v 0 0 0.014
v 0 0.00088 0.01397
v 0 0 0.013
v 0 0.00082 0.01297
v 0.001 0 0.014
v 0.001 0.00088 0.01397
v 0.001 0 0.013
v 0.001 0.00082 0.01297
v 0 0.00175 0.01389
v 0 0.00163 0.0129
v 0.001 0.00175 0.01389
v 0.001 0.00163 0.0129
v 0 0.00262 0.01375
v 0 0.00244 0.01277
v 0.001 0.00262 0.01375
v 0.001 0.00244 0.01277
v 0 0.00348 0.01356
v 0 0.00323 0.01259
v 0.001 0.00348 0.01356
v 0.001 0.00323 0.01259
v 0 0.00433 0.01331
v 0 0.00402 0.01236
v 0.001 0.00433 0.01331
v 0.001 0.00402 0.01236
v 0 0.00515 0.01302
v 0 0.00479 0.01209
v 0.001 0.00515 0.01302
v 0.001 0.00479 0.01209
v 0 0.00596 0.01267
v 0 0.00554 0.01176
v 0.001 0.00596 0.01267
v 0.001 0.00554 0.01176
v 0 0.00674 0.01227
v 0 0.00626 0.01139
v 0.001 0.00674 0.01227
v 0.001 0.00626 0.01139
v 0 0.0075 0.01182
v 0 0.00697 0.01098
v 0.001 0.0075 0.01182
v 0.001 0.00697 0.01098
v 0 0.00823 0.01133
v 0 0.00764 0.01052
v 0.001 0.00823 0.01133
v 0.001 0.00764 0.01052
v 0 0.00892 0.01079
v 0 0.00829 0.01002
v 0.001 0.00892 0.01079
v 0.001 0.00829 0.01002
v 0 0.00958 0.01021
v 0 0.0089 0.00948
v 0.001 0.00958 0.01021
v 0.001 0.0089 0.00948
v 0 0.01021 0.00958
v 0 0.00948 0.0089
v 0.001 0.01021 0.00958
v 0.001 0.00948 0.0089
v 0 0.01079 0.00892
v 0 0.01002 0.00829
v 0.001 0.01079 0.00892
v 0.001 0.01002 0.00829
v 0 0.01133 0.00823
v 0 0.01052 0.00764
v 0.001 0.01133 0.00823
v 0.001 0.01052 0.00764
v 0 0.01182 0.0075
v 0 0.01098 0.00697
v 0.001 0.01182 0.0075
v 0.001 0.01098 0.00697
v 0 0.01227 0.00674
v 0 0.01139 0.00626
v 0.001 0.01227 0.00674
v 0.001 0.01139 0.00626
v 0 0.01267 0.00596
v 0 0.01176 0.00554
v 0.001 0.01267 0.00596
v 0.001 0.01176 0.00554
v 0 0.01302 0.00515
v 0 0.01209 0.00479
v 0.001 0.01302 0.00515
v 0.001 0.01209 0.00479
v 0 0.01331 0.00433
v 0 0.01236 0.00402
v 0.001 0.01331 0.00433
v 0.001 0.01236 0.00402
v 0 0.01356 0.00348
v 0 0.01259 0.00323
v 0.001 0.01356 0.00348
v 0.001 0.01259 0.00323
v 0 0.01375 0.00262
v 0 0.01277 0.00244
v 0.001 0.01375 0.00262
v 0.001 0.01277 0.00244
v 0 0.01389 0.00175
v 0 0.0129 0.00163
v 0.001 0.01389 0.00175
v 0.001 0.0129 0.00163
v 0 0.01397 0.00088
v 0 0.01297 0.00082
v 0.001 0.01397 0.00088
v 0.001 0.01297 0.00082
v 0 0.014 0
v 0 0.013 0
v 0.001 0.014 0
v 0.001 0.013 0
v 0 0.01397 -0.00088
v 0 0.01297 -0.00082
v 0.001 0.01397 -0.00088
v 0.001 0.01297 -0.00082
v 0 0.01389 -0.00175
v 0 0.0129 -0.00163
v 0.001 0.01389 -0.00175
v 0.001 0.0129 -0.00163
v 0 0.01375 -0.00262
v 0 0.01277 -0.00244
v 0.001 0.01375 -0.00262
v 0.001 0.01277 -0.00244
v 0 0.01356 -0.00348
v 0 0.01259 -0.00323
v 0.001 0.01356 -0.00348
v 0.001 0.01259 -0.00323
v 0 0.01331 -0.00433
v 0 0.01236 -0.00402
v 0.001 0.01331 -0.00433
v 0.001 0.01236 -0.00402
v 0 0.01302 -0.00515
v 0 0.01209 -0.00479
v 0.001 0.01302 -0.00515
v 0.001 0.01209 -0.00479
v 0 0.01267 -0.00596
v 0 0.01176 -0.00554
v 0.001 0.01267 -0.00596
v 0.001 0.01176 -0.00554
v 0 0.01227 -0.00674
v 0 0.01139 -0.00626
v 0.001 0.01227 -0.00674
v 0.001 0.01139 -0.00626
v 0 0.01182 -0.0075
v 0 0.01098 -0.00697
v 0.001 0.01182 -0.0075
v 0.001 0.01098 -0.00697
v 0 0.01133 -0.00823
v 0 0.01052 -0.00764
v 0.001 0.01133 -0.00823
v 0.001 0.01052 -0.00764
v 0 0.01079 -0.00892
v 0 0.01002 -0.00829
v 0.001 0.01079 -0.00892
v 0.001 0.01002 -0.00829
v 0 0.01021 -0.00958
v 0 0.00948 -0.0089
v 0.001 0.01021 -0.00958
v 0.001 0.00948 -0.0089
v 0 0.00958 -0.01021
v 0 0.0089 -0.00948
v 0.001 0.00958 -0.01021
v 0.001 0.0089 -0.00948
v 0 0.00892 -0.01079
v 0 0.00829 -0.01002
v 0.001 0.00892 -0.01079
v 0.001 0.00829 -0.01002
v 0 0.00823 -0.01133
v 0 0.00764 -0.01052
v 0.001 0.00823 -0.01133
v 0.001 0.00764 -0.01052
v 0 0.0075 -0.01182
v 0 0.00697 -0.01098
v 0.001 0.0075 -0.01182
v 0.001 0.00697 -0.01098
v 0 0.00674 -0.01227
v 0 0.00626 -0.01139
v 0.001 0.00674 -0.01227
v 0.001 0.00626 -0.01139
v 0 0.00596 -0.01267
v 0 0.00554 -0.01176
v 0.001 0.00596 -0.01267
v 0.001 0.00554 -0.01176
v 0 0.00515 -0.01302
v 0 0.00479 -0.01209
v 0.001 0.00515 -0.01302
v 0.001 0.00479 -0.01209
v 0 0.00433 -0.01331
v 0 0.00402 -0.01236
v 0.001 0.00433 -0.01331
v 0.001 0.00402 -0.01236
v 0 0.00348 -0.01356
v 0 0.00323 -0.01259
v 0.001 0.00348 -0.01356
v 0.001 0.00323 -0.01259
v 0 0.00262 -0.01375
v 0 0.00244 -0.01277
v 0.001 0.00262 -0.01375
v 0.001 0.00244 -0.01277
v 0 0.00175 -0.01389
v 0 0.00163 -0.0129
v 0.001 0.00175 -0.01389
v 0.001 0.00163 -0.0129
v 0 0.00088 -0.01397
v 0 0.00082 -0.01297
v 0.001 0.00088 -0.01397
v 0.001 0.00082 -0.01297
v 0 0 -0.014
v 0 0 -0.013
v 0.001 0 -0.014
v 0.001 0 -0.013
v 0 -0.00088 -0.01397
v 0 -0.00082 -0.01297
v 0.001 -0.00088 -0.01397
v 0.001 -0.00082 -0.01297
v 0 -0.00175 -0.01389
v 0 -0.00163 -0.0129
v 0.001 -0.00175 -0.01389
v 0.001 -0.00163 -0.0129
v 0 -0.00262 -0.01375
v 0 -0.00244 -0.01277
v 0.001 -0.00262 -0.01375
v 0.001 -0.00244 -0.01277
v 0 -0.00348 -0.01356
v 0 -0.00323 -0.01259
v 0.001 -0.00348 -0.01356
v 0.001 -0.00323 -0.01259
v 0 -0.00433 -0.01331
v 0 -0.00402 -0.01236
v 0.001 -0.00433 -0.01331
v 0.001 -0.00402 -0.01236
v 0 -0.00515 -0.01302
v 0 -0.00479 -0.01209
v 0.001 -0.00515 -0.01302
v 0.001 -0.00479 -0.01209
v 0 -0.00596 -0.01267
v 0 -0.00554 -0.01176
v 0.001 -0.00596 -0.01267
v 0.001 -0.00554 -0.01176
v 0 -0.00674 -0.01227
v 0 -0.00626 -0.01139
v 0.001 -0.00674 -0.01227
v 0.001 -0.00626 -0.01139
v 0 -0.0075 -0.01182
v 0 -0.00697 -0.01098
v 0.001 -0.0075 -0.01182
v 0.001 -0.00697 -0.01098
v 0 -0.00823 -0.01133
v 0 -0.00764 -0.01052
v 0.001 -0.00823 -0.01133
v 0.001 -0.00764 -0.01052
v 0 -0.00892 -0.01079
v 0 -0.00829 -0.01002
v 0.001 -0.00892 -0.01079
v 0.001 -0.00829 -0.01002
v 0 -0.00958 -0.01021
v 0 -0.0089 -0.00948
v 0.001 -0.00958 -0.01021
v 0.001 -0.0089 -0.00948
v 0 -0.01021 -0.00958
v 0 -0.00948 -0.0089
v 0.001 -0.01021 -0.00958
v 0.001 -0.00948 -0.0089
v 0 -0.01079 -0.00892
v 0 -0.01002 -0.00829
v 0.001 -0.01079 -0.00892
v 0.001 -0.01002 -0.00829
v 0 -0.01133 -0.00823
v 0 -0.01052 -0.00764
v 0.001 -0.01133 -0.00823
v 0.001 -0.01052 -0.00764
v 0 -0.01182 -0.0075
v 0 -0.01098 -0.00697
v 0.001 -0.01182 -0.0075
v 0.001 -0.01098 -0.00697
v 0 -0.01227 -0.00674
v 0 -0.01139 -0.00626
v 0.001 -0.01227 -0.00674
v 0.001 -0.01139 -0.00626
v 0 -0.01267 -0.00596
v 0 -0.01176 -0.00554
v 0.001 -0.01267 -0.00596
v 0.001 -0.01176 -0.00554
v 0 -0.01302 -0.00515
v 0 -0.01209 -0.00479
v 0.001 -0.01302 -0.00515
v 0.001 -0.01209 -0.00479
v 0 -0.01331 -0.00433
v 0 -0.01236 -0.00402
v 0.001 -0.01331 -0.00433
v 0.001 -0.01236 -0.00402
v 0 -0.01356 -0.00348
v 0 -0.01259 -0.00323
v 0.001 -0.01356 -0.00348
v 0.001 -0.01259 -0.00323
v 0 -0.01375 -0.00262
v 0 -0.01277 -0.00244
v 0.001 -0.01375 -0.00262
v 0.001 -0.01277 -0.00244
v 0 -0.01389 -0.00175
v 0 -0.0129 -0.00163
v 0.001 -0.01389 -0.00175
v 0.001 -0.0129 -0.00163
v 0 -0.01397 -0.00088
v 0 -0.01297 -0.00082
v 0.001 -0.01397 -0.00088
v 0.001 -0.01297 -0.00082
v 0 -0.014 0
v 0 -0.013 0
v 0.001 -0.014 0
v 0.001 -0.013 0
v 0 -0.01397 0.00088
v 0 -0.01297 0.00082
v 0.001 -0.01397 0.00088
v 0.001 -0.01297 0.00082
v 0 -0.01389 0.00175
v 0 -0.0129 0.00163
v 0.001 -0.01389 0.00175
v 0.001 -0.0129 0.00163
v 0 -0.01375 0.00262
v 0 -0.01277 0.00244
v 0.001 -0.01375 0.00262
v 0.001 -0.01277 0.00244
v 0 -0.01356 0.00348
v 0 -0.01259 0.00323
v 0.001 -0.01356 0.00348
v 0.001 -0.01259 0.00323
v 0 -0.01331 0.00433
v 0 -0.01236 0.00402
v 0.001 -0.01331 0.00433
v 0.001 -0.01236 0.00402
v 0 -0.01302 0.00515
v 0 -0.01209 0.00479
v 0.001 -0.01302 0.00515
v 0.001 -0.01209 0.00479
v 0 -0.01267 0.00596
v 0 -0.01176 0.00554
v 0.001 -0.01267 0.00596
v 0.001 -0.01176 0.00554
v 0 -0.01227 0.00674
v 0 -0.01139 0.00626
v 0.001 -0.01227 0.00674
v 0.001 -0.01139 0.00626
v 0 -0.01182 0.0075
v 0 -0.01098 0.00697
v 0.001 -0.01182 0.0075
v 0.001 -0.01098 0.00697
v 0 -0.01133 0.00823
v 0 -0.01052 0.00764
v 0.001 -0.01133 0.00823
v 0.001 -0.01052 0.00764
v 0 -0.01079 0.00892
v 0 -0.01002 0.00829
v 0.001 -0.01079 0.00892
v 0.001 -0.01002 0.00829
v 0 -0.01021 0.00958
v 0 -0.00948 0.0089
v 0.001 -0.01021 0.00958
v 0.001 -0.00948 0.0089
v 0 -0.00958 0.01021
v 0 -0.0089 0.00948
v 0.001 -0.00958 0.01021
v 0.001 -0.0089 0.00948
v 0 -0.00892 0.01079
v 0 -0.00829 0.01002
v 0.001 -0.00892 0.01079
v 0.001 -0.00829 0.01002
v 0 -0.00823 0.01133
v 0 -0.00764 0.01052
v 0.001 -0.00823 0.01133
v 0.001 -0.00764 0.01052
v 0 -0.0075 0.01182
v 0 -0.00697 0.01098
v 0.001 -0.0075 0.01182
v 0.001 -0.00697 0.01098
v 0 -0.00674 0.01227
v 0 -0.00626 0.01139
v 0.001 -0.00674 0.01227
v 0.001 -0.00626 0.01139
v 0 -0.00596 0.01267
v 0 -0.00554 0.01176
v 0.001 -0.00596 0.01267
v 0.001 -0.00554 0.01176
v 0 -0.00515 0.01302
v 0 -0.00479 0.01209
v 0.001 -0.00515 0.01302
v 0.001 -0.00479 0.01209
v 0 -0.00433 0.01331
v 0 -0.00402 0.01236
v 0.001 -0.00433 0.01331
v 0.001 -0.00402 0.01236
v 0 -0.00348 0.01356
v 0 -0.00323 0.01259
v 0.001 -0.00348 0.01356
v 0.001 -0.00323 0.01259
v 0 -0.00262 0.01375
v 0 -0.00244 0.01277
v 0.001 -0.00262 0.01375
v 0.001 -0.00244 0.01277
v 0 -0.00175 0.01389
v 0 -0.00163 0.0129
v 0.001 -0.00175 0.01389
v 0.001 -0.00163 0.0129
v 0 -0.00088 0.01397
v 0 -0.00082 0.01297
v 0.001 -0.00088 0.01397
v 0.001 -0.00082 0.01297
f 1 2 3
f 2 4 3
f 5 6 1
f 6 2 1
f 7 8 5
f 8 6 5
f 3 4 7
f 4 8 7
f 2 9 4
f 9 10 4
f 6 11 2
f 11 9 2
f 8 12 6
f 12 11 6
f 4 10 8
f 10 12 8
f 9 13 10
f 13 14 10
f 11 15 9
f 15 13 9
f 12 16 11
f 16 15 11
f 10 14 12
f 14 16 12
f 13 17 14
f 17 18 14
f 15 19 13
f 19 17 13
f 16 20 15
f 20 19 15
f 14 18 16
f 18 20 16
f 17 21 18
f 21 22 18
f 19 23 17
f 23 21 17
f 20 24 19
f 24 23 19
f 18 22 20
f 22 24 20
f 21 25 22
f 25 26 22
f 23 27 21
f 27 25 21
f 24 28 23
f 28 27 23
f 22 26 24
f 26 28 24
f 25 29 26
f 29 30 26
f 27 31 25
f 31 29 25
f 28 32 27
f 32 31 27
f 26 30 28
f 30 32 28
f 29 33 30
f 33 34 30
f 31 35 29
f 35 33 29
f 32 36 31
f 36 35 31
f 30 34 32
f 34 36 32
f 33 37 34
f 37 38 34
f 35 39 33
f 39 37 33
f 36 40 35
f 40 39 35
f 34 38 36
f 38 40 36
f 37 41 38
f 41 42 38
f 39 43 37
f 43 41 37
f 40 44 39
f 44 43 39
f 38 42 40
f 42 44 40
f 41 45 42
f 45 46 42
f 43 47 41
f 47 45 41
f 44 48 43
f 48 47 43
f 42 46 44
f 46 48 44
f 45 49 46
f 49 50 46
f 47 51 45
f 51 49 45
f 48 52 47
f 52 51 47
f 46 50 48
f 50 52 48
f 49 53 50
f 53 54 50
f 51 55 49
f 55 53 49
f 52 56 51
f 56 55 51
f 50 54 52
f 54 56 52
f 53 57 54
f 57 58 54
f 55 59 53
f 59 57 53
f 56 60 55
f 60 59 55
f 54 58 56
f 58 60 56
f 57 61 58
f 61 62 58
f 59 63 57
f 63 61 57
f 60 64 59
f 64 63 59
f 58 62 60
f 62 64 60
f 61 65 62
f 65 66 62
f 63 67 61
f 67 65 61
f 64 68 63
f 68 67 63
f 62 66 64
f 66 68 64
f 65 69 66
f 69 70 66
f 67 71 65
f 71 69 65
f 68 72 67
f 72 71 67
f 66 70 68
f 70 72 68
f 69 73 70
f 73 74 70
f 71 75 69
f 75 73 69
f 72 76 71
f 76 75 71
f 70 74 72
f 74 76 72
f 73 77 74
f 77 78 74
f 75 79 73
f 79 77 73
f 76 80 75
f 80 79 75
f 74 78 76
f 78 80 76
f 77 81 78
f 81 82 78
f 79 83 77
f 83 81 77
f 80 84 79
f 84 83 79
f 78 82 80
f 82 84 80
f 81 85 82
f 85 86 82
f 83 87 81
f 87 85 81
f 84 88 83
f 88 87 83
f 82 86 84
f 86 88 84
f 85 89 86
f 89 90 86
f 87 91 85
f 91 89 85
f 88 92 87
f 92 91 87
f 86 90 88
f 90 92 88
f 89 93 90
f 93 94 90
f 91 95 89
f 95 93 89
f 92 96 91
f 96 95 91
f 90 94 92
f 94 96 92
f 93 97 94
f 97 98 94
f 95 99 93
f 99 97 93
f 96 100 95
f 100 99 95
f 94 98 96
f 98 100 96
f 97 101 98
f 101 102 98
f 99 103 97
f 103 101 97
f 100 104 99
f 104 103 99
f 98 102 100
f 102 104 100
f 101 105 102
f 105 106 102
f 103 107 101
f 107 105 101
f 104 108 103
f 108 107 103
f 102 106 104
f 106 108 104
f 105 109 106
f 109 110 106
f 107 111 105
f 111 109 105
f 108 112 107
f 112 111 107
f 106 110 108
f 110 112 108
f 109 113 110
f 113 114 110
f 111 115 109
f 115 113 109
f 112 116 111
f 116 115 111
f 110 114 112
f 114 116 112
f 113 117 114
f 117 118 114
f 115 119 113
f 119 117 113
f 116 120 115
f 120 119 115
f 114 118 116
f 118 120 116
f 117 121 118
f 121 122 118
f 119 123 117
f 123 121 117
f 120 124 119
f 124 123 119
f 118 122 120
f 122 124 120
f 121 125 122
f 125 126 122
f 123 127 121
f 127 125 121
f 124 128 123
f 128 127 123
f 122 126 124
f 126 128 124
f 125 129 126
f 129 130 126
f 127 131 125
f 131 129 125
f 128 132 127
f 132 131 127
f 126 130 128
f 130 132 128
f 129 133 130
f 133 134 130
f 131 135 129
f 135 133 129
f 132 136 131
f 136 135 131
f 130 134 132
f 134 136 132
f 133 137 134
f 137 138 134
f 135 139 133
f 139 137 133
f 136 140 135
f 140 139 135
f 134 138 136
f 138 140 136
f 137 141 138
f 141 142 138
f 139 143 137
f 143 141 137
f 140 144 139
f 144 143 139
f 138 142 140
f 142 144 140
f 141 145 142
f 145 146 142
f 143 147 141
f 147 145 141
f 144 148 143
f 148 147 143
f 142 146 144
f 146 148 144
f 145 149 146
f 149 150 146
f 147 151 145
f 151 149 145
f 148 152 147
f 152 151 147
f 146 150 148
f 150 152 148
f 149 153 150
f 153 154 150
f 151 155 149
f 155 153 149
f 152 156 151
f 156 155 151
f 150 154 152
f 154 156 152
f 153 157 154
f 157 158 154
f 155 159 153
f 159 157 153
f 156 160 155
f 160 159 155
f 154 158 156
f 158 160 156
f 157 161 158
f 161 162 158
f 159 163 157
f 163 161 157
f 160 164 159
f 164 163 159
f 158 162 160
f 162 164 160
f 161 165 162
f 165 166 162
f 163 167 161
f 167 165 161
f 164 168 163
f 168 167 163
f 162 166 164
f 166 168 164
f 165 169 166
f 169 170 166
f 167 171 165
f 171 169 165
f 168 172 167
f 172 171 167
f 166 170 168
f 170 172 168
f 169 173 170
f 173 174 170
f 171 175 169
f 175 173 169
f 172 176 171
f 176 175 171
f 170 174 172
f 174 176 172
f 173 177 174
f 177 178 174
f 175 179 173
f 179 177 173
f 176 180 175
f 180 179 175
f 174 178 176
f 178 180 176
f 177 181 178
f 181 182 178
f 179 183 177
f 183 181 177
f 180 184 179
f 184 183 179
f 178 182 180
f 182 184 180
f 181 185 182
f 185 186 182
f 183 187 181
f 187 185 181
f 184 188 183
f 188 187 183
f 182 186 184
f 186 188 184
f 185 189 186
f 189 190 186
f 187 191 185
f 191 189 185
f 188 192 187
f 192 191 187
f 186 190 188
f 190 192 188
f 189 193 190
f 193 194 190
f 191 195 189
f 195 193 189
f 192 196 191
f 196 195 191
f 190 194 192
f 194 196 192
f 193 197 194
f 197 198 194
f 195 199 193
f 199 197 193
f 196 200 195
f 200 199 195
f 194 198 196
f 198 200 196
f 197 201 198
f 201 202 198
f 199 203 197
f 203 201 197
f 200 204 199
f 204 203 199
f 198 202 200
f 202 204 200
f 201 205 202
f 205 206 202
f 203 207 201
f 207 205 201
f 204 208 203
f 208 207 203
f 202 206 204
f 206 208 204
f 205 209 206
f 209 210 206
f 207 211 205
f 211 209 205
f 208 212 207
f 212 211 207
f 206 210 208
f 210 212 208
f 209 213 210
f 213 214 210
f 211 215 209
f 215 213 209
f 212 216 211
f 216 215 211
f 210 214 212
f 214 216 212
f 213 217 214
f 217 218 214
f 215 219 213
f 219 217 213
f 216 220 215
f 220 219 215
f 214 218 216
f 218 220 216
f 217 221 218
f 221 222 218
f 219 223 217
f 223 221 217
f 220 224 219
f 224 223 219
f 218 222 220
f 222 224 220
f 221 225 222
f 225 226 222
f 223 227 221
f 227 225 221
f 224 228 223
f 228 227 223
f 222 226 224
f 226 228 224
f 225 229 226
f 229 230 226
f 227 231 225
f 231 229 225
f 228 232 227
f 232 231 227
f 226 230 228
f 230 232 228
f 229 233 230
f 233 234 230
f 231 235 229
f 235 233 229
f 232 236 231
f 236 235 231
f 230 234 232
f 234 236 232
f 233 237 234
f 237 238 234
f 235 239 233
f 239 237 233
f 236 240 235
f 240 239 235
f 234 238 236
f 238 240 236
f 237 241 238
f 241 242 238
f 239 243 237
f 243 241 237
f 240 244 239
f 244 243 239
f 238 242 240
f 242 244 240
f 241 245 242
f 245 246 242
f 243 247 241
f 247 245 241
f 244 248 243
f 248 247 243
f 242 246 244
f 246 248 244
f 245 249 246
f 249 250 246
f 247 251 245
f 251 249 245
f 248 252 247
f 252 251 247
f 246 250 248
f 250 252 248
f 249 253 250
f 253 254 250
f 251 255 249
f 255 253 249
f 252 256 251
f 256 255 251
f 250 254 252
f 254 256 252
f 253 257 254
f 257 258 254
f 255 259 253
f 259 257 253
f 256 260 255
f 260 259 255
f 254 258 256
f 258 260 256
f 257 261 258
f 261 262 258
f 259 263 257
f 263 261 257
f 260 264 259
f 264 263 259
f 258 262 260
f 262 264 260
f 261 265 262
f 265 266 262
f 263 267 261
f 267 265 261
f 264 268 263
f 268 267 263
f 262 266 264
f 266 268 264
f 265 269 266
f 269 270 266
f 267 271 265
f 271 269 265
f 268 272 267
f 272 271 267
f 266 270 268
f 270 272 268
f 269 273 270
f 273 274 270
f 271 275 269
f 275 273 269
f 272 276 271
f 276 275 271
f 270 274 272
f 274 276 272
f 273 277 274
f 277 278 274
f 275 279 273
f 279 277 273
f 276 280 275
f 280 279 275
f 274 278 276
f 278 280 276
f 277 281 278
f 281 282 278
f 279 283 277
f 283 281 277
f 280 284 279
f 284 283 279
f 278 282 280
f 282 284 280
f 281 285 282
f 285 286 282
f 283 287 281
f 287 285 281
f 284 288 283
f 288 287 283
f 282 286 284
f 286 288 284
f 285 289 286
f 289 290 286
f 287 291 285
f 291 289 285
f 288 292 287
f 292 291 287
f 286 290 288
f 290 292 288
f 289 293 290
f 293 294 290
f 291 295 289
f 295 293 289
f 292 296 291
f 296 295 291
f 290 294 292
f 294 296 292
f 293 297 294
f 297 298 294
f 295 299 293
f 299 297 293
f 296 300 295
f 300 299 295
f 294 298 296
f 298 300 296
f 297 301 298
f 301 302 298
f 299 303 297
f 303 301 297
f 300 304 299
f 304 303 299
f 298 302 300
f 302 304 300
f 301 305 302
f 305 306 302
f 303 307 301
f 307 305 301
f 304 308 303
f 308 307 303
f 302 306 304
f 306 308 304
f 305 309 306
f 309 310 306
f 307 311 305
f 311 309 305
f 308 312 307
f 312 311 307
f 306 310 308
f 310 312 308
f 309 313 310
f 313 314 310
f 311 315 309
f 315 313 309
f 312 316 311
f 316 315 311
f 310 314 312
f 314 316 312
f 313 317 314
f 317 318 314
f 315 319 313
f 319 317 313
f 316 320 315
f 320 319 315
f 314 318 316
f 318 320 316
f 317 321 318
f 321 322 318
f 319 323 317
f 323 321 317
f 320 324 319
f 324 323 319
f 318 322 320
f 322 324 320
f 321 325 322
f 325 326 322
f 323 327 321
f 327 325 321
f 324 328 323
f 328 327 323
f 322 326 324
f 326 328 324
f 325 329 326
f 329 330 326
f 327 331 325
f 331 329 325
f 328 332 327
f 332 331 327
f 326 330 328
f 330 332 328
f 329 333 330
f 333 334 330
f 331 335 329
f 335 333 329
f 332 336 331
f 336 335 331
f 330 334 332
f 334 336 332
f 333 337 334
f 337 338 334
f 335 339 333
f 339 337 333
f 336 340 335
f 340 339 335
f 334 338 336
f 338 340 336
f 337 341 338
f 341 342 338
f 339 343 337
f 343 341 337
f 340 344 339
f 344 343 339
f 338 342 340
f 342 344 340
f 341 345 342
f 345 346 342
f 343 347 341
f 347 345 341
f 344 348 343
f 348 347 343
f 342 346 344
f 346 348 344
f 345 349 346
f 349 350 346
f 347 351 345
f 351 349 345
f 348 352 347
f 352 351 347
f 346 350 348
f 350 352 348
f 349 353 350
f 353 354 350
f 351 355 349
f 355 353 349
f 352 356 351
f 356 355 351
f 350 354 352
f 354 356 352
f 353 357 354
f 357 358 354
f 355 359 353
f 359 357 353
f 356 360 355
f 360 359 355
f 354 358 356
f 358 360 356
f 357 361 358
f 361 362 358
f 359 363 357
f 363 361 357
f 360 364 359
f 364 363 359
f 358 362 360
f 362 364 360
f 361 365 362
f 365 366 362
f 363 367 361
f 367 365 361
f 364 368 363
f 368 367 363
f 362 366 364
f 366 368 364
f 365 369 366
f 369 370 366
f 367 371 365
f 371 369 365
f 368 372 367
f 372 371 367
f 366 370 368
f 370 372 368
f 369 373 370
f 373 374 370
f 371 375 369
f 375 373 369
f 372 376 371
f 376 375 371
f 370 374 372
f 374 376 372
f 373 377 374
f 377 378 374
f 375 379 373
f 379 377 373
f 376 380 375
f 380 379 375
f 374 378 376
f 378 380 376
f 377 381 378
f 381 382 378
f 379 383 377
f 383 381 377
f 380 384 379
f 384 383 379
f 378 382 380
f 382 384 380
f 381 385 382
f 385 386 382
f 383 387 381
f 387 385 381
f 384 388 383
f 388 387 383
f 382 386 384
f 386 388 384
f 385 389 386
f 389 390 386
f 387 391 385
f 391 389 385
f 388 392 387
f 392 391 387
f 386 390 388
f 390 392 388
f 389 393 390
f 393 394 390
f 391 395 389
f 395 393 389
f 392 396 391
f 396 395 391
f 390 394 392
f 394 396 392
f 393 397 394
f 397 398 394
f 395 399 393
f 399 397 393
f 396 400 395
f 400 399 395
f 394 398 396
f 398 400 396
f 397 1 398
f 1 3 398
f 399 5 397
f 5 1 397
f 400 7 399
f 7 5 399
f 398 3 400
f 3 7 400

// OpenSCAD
// Change this to false to remove the helper geometry
debug = false;

// Global resolution
$fs = 0.1;  // Don't generate smaller facets than 0.1 mm
$fa = 0.1;    // Don't generate larger angles than 5 degrees
$fn=100;


module circle_ring(radius, thickness) {
    rotate_extrude(angle=360, convexity = 0){
                        translate([radius, 0, 0])
                        square(size = [thickness, thickness], center = true);
        }
}

scale(1e-3) translate([0.5, 0, 0]) rotate([0, 90, 0]) circle_ring(13.5, 1); //see fig.1 in Gumbel, AGP 2001: https://doi.org/10.5194/angeo-19-563-2001
